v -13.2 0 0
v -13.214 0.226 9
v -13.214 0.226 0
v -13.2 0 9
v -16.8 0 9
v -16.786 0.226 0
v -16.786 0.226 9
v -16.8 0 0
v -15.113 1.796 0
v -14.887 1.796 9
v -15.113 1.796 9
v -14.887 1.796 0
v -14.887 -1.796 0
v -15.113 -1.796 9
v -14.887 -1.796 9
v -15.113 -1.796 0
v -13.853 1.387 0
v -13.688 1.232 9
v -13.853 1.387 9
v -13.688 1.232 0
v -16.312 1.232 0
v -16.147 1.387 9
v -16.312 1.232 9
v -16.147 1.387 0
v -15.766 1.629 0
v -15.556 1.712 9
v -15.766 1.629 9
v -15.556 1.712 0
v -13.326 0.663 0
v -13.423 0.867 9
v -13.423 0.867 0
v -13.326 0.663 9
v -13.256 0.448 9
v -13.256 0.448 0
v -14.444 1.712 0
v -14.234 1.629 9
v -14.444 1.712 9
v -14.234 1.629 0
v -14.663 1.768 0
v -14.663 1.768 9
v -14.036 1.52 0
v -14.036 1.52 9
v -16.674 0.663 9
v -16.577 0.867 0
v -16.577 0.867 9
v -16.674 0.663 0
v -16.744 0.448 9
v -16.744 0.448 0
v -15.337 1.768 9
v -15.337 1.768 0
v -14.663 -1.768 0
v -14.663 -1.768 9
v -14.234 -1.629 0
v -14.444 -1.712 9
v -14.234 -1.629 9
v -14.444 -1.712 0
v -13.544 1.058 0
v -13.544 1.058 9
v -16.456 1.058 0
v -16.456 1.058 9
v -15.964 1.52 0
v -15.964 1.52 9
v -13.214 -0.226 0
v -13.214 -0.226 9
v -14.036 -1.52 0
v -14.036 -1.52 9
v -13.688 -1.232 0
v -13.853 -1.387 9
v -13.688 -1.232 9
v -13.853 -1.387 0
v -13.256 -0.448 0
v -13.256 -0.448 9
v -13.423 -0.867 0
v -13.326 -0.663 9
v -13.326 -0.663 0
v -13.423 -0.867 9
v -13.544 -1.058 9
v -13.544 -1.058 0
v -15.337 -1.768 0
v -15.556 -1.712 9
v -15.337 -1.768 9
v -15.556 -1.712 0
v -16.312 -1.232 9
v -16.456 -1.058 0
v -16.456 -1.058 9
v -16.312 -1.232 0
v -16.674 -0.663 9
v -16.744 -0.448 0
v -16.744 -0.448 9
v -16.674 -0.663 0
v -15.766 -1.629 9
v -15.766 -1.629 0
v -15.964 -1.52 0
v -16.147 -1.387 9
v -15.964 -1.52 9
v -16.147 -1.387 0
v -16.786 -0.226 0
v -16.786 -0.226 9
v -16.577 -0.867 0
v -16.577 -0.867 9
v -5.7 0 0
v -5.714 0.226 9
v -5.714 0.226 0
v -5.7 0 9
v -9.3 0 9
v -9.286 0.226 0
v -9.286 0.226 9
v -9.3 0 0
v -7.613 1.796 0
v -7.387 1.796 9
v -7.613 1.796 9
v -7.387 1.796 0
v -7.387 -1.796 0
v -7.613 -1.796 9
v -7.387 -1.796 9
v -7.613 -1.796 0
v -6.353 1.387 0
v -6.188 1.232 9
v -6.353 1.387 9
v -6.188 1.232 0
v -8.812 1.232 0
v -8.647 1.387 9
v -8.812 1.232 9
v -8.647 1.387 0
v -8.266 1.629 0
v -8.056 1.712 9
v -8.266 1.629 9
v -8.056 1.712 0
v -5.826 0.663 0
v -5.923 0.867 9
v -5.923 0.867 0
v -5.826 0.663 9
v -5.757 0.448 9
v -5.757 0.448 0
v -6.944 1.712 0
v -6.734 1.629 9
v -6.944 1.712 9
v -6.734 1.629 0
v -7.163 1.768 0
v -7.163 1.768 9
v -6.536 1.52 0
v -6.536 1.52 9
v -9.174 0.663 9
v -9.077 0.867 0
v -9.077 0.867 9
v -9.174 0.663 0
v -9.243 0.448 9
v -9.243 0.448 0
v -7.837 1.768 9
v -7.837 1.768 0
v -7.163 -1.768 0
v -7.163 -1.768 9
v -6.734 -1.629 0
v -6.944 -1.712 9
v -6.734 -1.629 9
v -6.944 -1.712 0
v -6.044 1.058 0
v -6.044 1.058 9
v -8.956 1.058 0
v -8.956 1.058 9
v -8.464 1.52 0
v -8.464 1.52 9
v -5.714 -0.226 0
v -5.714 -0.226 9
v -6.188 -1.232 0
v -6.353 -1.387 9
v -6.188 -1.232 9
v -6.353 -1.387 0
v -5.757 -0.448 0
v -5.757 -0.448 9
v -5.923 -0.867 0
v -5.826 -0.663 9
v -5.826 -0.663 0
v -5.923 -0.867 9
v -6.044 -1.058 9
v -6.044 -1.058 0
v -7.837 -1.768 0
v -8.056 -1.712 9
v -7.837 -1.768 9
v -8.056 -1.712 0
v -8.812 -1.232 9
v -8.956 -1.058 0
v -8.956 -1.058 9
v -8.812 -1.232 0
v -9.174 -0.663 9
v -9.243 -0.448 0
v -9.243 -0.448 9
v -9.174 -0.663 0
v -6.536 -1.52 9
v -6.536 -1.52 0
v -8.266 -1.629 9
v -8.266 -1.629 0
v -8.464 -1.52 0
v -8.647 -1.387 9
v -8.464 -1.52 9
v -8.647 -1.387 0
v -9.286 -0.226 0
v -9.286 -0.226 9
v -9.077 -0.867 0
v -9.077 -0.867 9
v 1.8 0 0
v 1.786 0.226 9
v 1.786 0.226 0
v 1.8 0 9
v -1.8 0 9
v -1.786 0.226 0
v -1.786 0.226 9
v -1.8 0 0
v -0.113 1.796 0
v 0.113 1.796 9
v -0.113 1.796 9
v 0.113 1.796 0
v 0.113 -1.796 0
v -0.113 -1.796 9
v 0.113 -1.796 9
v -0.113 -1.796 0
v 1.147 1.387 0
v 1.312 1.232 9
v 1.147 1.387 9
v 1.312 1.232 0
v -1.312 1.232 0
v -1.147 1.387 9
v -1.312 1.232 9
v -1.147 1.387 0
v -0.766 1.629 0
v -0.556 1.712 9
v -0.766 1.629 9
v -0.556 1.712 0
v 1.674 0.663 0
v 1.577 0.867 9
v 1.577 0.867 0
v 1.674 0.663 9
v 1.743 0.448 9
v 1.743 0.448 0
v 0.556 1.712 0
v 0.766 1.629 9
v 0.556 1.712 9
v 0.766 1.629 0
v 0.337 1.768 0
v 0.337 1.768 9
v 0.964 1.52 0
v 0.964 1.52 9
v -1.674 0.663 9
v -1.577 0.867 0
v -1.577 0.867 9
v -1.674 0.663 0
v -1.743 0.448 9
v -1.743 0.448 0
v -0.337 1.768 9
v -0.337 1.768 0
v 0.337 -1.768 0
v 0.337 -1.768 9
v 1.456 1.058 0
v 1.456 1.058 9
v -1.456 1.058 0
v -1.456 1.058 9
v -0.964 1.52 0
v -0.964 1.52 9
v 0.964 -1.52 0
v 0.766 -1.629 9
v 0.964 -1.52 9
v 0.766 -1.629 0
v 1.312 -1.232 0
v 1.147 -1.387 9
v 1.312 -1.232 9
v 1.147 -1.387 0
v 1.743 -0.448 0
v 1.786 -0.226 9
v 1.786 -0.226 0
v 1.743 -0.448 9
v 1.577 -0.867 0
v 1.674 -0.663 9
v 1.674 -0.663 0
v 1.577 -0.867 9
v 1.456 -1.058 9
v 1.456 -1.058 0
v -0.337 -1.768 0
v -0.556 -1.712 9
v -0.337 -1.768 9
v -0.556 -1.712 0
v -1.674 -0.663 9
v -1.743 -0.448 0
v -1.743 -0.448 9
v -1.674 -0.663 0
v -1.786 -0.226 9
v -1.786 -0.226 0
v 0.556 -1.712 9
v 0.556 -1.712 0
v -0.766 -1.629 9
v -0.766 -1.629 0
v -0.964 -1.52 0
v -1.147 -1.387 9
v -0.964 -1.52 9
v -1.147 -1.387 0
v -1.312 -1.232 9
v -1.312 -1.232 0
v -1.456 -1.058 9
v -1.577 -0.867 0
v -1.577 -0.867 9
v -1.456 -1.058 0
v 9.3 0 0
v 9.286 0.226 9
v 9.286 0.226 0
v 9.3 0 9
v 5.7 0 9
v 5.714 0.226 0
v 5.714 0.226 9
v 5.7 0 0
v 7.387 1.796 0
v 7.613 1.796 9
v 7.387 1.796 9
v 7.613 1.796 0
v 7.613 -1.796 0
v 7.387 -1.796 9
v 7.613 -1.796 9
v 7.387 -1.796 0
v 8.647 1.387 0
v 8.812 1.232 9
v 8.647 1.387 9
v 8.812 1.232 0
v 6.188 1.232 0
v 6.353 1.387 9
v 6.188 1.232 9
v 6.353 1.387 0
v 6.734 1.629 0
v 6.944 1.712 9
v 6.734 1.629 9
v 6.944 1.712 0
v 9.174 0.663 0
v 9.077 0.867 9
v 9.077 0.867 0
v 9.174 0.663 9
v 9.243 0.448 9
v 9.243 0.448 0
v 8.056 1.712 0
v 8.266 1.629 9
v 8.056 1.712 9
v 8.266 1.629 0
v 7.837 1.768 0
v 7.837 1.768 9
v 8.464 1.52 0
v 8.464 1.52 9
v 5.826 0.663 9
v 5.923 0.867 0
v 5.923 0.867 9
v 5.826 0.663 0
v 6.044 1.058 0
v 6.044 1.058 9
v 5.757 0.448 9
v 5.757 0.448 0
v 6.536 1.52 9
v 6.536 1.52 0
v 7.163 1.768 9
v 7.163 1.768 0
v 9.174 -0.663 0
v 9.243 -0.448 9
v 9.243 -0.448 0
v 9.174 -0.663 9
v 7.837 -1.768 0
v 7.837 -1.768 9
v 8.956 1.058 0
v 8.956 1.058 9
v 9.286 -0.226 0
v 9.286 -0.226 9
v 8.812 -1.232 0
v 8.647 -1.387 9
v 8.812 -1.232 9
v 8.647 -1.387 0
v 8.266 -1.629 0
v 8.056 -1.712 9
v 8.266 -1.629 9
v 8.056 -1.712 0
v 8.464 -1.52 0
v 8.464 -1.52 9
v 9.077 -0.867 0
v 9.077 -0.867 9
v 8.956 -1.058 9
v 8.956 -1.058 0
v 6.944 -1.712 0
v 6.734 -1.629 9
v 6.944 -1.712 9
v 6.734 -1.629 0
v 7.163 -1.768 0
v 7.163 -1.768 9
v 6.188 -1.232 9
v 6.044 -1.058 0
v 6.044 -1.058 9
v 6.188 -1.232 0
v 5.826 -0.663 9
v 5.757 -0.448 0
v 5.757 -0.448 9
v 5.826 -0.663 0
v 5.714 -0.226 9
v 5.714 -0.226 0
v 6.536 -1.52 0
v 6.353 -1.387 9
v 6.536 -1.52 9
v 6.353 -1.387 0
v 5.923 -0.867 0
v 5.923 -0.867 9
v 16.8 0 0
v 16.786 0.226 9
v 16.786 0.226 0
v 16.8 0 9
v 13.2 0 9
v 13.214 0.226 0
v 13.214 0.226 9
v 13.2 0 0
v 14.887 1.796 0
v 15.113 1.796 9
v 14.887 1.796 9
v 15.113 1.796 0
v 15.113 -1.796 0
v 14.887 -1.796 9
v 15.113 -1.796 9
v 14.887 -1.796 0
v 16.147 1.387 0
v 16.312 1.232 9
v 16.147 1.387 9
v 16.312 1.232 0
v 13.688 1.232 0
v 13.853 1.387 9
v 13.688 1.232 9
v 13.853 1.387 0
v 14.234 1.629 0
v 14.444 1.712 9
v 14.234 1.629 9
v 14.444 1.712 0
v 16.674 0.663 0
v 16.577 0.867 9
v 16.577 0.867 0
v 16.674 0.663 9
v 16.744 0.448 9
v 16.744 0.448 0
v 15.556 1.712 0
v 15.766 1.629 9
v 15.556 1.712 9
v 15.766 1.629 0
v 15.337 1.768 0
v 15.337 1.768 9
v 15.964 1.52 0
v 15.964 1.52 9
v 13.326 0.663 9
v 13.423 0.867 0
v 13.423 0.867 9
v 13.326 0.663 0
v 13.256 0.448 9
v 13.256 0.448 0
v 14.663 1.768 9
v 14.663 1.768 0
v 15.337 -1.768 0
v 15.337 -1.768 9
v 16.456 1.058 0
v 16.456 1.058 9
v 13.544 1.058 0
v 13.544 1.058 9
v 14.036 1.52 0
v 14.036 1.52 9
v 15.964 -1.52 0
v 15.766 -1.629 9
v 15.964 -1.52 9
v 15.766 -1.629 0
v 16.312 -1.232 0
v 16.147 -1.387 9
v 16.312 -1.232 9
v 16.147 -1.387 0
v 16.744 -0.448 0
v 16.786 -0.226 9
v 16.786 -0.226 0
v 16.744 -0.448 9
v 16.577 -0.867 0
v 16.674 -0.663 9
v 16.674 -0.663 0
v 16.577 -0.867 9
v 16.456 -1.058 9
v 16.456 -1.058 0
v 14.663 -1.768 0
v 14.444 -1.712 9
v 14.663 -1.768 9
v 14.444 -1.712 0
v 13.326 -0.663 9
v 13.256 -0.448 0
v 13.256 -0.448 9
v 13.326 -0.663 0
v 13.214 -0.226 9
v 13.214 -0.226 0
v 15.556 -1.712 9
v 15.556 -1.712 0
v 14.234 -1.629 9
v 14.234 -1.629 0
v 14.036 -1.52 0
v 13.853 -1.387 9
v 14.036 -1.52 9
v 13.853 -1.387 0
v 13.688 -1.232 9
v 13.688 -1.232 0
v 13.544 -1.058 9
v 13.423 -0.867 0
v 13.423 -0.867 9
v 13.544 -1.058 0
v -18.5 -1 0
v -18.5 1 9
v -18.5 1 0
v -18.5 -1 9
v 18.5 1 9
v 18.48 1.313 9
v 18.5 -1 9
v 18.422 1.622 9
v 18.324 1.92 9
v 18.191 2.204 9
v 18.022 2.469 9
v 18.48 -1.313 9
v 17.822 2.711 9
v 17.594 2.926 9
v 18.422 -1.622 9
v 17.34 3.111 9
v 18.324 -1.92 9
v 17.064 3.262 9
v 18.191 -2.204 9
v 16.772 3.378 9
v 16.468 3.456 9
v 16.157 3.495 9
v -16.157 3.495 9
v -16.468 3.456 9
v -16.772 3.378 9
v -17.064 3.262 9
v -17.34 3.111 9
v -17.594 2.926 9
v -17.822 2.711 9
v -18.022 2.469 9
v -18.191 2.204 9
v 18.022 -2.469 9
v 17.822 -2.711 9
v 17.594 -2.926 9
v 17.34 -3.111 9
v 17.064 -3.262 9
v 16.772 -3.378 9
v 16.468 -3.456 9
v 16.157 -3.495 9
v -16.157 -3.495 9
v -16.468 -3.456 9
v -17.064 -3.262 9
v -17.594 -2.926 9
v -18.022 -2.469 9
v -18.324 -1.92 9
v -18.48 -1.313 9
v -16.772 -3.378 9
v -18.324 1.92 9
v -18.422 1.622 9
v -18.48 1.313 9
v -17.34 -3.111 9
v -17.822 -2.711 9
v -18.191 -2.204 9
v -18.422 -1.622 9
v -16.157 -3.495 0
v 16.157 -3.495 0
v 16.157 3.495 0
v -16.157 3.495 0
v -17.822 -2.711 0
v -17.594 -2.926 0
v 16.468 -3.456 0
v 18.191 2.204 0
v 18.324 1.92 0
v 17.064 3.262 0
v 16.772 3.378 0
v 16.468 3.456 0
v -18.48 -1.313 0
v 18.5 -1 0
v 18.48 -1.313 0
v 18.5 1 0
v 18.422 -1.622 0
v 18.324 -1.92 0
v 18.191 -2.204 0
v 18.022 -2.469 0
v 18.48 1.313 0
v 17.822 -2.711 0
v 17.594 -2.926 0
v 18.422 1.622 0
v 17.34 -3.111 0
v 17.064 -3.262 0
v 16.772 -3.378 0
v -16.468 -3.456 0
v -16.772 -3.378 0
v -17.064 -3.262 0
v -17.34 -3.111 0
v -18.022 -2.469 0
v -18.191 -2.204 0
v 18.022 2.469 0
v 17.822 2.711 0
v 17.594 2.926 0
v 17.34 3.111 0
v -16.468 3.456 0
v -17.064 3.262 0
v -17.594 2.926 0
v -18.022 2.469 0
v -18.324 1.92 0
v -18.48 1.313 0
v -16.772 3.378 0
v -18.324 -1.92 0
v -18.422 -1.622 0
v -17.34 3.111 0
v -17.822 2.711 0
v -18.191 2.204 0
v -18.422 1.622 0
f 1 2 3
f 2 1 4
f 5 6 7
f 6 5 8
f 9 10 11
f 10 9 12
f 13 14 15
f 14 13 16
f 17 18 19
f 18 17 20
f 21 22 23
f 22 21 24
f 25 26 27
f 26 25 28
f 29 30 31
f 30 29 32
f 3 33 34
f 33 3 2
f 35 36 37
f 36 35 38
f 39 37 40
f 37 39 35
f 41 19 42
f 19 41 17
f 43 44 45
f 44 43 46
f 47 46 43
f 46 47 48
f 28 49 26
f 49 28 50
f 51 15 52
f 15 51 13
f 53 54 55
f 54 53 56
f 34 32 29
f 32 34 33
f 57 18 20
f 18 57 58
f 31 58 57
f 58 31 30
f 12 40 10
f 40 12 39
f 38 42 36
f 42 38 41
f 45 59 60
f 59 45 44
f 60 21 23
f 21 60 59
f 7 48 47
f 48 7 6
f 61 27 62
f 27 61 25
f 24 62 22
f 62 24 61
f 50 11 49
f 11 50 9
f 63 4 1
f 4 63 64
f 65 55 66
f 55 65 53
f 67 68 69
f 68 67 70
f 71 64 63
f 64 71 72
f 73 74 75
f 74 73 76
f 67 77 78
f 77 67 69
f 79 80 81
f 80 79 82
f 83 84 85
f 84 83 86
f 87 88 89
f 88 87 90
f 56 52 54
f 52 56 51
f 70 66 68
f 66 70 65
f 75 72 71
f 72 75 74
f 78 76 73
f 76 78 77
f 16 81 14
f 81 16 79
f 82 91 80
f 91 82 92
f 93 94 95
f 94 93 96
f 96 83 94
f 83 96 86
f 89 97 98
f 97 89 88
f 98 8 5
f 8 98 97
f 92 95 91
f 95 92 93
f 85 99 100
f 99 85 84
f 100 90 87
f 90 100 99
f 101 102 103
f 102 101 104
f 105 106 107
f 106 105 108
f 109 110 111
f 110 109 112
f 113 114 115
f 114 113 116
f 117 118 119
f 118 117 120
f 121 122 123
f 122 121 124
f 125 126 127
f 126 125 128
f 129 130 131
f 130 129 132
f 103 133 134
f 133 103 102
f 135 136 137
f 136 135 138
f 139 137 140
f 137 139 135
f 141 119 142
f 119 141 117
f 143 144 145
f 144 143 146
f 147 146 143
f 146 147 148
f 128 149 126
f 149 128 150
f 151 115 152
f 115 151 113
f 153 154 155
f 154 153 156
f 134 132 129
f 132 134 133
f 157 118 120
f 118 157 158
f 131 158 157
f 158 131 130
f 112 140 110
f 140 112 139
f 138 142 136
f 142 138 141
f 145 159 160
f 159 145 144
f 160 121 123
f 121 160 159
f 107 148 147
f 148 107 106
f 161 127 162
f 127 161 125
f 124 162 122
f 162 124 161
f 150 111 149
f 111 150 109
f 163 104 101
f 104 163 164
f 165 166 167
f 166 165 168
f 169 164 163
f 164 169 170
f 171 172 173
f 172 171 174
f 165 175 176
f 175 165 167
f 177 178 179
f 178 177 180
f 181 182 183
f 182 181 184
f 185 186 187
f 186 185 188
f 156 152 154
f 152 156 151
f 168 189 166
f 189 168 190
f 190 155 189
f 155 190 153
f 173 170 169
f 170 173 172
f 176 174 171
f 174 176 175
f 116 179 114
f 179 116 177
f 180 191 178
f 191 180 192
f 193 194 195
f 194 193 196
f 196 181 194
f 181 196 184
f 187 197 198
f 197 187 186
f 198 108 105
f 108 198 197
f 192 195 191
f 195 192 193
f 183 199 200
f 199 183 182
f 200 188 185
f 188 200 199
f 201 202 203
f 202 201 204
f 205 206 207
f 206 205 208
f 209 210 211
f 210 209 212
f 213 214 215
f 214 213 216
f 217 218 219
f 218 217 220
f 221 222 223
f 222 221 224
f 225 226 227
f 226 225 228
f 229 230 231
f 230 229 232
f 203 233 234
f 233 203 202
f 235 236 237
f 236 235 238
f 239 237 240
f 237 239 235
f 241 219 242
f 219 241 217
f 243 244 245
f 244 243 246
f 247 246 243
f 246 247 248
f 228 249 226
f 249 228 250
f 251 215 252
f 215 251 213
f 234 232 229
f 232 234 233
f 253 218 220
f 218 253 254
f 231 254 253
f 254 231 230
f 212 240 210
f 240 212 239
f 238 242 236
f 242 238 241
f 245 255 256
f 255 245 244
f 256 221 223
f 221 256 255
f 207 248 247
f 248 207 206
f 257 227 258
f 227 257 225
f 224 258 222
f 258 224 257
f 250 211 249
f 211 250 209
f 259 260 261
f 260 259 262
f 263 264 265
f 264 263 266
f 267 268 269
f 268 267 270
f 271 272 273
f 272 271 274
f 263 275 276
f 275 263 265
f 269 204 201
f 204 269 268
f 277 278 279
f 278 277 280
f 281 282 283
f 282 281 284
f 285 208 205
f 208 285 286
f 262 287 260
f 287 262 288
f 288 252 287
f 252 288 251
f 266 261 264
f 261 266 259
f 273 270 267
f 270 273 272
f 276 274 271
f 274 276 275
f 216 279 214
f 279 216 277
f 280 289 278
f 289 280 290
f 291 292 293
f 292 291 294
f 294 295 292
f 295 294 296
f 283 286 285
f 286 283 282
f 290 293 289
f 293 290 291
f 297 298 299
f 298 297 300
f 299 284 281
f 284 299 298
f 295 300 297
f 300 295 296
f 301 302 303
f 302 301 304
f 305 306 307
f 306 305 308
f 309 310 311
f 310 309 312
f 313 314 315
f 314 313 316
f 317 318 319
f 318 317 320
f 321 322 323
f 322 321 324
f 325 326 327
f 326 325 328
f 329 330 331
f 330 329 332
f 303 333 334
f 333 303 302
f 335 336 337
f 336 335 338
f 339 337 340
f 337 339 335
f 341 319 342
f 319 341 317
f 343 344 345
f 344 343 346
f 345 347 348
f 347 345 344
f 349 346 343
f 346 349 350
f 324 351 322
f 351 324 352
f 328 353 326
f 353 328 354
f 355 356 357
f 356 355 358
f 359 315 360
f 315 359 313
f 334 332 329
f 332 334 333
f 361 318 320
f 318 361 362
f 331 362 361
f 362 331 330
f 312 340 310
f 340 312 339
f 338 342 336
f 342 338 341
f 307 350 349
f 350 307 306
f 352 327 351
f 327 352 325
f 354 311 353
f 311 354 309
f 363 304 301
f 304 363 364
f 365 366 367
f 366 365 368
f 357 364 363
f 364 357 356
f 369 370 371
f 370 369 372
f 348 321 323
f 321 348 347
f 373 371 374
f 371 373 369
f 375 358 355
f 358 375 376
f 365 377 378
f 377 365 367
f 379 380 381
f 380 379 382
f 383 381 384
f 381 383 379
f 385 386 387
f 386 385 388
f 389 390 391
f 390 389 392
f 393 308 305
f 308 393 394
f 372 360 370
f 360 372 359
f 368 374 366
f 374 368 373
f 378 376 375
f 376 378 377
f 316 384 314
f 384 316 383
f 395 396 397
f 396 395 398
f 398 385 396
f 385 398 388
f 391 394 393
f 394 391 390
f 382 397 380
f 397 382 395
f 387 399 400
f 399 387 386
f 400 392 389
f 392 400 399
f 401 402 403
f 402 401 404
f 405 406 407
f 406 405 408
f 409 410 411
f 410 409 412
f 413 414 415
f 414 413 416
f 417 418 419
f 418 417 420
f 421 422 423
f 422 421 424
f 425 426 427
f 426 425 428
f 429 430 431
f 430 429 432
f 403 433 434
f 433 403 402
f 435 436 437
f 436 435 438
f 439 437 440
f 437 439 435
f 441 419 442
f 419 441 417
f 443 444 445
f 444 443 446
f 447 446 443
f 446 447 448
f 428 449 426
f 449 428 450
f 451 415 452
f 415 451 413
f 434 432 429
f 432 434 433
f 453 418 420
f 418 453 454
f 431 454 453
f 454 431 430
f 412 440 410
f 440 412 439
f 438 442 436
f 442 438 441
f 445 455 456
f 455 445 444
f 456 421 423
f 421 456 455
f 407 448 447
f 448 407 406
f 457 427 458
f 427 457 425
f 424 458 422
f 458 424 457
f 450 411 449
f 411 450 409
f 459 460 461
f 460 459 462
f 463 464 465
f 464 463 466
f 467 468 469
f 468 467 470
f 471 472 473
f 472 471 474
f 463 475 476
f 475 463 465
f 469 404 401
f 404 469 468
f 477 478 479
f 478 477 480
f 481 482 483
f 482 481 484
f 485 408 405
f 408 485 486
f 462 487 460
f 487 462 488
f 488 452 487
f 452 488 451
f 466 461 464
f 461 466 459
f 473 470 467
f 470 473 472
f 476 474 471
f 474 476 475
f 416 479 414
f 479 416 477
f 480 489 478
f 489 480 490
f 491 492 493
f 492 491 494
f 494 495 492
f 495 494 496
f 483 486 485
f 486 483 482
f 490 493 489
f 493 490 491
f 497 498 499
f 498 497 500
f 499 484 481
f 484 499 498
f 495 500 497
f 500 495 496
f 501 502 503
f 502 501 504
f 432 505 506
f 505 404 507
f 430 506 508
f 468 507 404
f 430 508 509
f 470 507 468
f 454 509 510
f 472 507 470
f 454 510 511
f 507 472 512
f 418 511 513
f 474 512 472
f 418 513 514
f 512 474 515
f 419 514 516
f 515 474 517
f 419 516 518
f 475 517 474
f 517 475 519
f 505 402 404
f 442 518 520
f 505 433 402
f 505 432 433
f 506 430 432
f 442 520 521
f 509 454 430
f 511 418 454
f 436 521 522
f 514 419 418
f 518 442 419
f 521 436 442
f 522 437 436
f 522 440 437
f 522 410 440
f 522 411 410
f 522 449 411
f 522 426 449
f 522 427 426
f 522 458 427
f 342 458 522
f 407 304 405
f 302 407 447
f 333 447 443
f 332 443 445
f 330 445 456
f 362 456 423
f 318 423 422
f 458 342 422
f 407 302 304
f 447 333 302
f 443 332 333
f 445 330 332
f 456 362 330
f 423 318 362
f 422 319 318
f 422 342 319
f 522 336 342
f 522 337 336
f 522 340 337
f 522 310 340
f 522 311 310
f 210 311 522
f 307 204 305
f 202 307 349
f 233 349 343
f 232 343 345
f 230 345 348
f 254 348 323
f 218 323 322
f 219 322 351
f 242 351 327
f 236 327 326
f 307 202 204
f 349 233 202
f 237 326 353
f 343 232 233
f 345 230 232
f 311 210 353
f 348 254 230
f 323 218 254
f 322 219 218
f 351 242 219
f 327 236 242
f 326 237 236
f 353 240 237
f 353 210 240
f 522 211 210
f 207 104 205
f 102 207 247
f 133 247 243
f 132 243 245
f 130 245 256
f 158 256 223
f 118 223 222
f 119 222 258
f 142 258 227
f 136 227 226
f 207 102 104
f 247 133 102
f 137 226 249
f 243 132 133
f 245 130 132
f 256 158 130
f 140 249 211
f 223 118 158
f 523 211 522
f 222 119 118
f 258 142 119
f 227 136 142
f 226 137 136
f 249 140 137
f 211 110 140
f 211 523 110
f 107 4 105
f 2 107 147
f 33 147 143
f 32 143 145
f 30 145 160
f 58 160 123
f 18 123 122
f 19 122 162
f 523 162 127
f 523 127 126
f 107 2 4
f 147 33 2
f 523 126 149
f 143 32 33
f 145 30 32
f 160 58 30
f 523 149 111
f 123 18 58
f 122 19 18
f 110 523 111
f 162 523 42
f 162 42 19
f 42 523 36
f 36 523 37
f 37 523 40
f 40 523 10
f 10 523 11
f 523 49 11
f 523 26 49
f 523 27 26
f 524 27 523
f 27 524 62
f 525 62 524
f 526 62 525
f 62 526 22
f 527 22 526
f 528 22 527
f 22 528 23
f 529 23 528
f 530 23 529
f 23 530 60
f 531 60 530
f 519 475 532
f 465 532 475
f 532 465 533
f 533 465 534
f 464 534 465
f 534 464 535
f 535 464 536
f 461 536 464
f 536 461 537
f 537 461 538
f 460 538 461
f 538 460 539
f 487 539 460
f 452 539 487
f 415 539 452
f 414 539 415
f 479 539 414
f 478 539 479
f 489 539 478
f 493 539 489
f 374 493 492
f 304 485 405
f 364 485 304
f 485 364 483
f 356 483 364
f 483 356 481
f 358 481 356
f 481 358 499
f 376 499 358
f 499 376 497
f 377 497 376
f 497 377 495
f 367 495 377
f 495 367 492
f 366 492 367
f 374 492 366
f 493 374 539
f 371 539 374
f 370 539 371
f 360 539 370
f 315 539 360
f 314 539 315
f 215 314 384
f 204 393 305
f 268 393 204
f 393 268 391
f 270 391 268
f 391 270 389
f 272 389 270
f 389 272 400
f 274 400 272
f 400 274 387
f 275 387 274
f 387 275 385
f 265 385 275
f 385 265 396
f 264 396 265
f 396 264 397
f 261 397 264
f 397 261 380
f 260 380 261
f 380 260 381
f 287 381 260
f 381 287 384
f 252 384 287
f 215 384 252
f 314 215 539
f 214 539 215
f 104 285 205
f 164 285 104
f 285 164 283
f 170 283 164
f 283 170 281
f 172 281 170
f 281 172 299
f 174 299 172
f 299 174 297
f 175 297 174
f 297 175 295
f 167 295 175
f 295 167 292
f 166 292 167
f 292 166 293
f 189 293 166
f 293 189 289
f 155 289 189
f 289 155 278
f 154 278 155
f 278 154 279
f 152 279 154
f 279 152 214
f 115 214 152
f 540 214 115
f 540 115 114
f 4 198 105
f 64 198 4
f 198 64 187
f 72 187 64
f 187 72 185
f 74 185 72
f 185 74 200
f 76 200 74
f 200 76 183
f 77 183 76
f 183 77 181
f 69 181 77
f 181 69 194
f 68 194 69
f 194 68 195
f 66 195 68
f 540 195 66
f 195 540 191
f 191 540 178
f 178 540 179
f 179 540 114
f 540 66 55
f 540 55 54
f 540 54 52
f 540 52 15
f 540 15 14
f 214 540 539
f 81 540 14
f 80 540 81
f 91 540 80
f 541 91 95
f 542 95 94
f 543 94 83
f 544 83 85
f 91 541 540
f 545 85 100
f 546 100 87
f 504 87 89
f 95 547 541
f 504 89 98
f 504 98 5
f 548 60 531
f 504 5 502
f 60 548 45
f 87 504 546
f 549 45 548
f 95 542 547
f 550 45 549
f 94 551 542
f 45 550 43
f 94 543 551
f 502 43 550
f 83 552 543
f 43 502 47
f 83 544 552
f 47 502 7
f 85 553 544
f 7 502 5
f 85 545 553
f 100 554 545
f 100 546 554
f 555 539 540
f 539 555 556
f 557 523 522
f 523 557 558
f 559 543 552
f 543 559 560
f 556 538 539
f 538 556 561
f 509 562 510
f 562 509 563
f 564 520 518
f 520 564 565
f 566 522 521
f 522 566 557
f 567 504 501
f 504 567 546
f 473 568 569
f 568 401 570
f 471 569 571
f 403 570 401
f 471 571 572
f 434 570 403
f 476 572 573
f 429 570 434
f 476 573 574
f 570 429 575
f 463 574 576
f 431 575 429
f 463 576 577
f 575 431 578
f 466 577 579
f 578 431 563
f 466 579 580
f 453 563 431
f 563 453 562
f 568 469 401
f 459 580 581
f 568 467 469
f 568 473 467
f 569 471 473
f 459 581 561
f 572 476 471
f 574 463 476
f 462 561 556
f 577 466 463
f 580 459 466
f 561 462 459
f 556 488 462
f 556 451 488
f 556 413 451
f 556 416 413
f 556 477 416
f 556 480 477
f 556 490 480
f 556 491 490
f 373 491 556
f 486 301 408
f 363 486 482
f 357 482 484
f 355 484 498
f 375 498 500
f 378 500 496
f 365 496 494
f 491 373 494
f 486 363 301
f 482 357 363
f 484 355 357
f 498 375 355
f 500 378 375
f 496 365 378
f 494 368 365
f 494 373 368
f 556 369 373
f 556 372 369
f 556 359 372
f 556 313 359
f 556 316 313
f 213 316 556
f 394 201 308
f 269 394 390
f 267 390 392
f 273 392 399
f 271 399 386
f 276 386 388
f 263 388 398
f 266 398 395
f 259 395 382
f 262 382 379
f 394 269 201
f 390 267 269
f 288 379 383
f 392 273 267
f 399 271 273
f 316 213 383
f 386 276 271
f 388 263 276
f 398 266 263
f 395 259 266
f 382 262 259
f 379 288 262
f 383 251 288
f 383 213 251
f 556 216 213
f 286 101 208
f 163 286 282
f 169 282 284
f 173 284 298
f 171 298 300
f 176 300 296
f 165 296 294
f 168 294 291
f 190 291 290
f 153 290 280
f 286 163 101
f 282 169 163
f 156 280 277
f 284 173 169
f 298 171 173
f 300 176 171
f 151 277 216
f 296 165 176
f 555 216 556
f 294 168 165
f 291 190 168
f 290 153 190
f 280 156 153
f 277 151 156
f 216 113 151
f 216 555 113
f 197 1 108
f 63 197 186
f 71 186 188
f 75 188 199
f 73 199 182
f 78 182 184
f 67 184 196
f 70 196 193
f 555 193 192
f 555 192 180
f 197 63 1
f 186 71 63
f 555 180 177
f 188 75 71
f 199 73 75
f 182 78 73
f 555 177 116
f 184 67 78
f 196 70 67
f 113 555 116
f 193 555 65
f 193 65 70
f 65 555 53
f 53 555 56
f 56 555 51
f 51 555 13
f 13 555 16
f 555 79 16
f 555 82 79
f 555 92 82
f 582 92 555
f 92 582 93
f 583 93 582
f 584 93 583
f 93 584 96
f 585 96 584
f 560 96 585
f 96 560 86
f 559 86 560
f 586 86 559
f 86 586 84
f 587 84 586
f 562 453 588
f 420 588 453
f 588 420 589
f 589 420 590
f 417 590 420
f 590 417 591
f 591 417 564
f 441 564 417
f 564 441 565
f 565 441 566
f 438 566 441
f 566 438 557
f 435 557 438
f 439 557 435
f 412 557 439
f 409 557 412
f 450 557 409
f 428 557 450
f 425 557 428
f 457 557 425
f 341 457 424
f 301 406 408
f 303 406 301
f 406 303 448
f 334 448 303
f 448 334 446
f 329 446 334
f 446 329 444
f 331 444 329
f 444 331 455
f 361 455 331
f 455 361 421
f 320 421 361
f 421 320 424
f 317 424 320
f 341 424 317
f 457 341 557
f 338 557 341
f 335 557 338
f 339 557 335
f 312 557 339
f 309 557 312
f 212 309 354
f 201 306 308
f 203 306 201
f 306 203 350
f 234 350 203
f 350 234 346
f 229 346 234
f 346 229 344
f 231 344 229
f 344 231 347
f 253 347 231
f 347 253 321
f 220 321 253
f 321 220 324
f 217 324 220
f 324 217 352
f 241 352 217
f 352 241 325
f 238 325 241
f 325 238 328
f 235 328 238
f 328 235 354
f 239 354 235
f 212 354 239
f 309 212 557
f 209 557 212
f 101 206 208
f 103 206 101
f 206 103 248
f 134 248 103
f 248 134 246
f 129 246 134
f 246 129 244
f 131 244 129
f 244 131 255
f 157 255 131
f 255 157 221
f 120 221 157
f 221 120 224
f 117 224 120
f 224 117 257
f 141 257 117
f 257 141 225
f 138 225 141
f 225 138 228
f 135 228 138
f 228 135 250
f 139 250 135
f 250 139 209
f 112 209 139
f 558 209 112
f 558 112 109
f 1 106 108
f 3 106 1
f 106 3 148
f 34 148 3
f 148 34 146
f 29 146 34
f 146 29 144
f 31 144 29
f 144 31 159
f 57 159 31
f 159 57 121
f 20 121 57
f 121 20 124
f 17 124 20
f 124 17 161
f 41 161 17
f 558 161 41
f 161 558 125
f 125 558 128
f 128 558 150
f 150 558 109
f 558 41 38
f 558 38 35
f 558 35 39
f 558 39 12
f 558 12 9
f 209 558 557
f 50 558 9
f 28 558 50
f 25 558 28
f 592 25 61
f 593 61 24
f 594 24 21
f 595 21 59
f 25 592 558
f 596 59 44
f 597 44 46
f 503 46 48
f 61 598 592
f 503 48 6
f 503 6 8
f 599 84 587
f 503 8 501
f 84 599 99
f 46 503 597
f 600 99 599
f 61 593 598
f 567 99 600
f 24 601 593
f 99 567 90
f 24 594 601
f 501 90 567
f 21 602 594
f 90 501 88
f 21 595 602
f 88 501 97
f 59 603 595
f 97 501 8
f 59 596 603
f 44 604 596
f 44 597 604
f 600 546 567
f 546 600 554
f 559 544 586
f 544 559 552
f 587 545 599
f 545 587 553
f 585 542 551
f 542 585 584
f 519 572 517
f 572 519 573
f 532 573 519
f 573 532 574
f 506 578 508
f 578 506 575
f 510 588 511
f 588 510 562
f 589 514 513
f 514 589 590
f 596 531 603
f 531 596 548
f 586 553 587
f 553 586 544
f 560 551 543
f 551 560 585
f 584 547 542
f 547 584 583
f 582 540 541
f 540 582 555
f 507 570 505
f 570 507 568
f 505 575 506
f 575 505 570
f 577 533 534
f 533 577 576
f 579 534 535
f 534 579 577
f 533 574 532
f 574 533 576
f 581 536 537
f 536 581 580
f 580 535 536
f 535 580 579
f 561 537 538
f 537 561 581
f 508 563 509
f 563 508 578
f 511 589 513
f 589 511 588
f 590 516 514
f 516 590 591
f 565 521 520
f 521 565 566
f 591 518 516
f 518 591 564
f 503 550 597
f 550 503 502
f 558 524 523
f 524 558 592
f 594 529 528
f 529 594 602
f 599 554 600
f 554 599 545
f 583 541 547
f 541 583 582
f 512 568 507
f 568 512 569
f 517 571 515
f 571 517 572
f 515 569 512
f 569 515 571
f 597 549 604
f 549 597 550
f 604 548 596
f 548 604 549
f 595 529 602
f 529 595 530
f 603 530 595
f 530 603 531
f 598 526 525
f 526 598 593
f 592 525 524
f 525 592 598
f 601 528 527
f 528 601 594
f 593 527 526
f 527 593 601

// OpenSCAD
$fn = 50;


difference() {
	union() {
		translate(v = [0, 0, 0]) {
			rotate(a = [0, 0, 0]) {
				hull() {
					translate(v = [-16.0000000000, 1.0000000000, 0]) {
						rotate(a = [0, 0, 0]) {
							translate(v = [0, 0, 0]) {
								rotate(a = [0, 0, 0]) {
									cylinder(h = 9, r = 2.5000000000);
								}
							}
						}
					}
					translate(v = [16.0000000000, 1.0000000000, 0]) {
						rotate(a = [0, 0, 0]) {
							translate(v = [0, 0, 0]) {
								rotate(a = [0, 0, 0]) {
									cylinder(h = 9, r = 2.5000000000);
								}
							}
						}
					}
					translate(v = [-16.0000000000, -1.0000000000, 0]) {
						rotate(a = [0, 0, 0]) {
							translate(v = [0, 0, 0]) {
								rotate(a = [0, 0, 0]) {
									cylinder(h = 9, r = 2.5000000000);
								}
							}
						}
					}
					translate(v = [16.0000000000, -1.0000000000, 0]) {
						rotate(a = [0, 0, 0]) {
							translate(v = [0, 0, 0]) {
								rotate(a = [0, 0, 0]) {
									cylinder(h = 9, r = 2.5000000000);
								}
							}
						}
					}
				}
			}
		}
	}
	union() {
		translate(v = [-15.0000000000, 0.0000000000, 0]) {
			rotate(a = [0, 0, 0]) {
				translate(v = [0, 0, -50]) {
					rotate(a = [0, 0, 0]) {
						cylinder(h = 100, r = 1.8000000000);
					}
				}
			}
		}
		translate(v = [-7.5000000000, 0.0000000000, 0]) {
			rotate(a = [0, 0, 0]) {
				translate(v = [0, 0, -50]) {
					rotate(a = [0, 0, 0]) {
						cylinder(h = 100, r = 1.8000000000);
					}
				}
			}
		}
		translate(v = [0.0000000000, 0.0000000000, 0]) {
			rotate(a = [0, 0, 0]) {
				translate(v = [0, 0, -50]) {
					rotate(a = [0, 0, 0]) {
						cylinder(h = 100, r = 1.8000000000);
					}
				}
			}
		}
		translate(v = [7.5000000000, 0.0000000000, 0]) {
			rotate(a = [0, 0, 0]) {
				translate(v = [0, 0, -50]) {
					rotate(a = [0, 0, 0]) {
						cylinder(h = 100, r = 1.8000000000);
					}
				}
			}
		}
		translate(v = [15.0000000000, 0.0000000000, 0]) {
			rotate(a = [0, 0, 0]) {
				translate(v = [0, 0, -50]) {
					rotate(a = [0, 0, 0]) {
						cylinder(h = 100, r = 1.8000000000);
					}
				}
			}
		}
	}
}
